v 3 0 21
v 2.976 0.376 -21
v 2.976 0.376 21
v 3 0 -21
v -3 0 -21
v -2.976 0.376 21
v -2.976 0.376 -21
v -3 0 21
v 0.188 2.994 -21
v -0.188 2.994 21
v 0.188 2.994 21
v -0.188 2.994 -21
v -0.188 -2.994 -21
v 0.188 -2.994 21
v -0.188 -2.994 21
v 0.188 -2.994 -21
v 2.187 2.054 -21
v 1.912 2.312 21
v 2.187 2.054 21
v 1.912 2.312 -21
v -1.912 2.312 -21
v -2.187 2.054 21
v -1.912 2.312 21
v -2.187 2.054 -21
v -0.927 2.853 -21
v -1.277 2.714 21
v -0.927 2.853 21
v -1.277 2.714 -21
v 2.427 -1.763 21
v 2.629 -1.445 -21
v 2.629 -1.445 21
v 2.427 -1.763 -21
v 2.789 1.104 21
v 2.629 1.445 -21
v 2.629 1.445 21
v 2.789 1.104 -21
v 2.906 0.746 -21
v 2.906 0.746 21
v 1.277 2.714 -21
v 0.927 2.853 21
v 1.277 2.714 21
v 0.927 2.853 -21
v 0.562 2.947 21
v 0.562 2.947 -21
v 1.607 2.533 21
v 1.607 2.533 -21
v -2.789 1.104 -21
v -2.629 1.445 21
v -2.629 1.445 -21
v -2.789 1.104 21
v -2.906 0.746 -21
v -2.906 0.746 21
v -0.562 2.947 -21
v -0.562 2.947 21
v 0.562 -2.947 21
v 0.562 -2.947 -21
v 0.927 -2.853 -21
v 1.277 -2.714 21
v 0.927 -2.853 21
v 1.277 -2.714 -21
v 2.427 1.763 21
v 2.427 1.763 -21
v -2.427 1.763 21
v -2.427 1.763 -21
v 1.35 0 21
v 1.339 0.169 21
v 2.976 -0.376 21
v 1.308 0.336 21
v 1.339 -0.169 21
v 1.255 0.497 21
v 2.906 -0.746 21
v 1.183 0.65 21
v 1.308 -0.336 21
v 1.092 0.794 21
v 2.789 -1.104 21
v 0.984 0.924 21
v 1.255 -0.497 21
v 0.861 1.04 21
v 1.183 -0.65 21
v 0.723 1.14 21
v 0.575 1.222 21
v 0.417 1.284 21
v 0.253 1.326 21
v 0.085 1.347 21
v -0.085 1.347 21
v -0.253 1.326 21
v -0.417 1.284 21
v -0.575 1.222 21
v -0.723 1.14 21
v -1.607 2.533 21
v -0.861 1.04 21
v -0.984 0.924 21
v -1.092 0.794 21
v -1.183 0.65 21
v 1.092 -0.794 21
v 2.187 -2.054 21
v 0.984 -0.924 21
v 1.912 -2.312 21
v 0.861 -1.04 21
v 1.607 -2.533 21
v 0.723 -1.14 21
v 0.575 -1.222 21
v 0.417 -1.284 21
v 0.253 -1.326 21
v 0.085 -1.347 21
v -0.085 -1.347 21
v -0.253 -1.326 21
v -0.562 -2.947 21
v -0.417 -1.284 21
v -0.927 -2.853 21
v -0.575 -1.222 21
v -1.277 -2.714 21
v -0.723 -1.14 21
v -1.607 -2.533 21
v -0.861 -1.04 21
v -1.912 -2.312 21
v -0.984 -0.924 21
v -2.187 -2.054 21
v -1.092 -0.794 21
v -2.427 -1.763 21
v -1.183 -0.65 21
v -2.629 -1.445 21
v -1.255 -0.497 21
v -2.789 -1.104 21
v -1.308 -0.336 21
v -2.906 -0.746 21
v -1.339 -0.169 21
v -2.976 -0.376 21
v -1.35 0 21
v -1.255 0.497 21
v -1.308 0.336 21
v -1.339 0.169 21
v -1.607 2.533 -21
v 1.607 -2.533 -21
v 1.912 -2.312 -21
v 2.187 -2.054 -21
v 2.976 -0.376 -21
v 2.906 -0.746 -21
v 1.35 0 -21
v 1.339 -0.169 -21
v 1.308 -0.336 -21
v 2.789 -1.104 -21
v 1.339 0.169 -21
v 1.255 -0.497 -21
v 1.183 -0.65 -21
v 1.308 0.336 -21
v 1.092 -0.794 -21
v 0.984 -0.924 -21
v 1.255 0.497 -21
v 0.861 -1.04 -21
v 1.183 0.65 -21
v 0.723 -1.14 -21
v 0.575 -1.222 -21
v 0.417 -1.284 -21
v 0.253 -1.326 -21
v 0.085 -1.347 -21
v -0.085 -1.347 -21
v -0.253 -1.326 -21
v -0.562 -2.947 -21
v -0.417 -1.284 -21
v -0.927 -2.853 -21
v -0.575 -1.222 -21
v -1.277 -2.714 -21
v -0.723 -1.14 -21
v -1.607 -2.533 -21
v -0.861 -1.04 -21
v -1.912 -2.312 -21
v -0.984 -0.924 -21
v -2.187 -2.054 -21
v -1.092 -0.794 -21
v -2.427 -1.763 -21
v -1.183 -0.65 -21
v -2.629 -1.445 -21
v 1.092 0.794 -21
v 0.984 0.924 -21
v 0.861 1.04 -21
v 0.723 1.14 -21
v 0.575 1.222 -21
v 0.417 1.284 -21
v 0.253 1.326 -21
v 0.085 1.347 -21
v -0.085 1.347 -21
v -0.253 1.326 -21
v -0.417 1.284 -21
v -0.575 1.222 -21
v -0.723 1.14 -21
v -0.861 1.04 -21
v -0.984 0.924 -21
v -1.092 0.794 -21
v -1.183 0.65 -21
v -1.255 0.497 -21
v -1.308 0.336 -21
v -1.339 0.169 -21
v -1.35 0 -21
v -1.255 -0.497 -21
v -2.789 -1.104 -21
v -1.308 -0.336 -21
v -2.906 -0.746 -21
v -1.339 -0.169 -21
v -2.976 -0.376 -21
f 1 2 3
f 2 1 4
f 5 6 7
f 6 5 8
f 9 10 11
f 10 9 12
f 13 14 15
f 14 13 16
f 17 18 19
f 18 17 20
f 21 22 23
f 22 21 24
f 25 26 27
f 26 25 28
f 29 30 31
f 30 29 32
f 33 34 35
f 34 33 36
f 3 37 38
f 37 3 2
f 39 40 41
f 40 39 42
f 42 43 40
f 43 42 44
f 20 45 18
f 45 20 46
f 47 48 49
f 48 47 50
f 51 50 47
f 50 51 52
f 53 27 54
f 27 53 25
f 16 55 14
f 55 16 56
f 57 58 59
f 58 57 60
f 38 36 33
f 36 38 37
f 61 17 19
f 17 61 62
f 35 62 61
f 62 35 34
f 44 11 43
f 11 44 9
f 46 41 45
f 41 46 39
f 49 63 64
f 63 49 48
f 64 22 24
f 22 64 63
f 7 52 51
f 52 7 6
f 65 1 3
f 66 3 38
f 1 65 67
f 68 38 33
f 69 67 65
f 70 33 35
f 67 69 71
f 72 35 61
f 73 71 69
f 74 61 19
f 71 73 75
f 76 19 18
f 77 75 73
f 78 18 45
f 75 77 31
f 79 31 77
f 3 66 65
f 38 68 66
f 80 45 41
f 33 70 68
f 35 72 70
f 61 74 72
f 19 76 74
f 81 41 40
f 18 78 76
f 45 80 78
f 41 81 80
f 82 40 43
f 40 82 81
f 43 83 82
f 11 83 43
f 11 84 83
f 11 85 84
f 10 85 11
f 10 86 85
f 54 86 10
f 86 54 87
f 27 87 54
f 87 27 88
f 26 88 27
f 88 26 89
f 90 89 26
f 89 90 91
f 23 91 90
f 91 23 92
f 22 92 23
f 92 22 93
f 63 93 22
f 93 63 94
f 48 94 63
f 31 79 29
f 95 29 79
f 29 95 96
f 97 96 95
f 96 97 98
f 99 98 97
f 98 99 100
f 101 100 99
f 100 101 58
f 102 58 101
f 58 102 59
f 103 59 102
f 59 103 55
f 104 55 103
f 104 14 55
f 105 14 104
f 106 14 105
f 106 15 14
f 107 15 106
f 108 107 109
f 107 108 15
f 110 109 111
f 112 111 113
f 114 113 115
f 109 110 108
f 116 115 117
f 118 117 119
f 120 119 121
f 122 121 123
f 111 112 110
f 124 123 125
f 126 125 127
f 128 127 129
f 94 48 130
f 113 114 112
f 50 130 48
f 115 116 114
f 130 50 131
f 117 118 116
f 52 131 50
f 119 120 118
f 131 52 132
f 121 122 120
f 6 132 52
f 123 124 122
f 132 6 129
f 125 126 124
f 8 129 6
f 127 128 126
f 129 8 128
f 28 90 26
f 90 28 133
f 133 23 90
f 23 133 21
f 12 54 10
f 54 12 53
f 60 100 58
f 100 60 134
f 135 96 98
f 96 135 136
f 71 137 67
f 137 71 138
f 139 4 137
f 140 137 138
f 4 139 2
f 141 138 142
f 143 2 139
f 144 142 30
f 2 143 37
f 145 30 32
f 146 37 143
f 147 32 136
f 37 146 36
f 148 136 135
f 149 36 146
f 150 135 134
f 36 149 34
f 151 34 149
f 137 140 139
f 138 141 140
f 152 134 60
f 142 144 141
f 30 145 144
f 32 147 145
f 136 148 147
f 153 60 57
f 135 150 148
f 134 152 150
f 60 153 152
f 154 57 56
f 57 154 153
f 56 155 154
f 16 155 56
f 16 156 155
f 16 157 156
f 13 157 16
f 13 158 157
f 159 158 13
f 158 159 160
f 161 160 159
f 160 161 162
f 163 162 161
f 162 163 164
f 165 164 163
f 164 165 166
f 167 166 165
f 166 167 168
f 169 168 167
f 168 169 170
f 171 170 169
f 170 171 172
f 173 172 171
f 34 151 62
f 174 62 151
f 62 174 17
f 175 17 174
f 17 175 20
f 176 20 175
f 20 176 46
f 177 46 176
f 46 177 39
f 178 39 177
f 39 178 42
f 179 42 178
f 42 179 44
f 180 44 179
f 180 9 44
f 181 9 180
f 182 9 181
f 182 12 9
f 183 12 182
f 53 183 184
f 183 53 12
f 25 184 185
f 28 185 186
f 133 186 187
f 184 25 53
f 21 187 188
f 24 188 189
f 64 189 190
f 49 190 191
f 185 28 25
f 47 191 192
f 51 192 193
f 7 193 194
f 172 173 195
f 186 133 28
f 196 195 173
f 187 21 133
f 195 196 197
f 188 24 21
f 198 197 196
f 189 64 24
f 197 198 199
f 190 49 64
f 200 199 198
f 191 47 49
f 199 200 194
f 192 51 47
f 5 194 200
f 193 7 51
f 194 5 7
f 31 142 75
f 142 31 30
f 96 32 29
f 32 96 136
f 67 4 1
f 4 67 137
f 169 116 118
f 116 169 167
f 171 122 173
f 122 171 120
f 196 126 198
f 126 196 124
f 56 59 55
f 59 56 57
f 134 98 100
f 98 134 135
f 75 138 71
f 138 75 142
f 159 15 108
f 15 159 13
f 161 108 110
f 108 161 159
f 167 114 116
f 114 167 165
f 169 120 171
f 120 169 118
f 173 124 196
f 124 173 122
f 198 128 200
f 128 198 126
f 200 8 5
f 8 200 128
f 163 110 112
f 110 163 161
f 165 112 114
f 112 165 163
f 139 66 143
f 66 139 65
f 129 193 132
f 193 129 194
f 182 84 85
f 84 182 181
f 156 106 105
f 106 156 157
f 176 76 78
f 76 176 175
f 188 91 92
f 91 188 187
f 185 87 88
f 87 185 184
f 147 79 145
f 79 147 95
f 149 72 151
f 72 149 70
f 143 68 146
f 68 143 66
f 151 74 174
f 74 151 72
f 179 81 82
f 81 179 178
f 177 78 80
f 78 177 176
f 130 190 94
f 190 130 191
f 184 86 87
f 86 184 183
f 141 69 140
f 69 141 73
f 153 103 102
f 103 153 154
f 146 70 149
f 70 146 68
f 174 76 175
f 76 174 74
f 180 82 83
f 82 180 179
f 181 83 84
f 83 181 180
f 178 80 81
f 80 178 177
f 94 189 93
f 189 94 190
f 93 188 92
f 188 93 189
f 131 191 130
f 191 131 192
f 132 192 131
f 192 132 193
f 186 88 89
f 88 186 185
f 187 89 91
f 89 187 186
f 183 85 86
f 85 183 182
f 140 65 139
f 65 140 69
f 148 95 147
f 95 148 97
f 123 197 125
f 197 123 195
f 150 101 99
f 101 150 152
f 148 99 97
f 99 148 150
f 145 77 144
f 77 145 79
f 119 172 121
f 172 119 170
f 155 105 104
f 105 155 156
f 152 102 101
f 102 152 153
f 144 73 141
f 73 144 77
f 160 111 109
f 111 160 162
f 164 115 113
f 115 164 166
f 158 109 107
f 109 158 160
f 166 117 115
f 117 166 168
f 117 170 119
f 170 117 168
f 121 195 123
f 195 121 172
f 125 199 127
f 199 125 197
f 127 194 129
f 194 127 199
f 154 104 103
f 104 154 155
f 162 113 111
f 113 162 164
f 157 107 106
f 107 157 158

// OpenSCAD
$fn = 50;


difference() {
	union() {
		translate(v = [0, 0, -21.0000000000]) {
			cylinder(h = 42, r = 3.0000000000);
		}
	}
	union() {
		translate(v = [0, 0, -100.0000000000]) {
			cylinder(h = 200, r = 1.3500000000);
		}
	}
}
